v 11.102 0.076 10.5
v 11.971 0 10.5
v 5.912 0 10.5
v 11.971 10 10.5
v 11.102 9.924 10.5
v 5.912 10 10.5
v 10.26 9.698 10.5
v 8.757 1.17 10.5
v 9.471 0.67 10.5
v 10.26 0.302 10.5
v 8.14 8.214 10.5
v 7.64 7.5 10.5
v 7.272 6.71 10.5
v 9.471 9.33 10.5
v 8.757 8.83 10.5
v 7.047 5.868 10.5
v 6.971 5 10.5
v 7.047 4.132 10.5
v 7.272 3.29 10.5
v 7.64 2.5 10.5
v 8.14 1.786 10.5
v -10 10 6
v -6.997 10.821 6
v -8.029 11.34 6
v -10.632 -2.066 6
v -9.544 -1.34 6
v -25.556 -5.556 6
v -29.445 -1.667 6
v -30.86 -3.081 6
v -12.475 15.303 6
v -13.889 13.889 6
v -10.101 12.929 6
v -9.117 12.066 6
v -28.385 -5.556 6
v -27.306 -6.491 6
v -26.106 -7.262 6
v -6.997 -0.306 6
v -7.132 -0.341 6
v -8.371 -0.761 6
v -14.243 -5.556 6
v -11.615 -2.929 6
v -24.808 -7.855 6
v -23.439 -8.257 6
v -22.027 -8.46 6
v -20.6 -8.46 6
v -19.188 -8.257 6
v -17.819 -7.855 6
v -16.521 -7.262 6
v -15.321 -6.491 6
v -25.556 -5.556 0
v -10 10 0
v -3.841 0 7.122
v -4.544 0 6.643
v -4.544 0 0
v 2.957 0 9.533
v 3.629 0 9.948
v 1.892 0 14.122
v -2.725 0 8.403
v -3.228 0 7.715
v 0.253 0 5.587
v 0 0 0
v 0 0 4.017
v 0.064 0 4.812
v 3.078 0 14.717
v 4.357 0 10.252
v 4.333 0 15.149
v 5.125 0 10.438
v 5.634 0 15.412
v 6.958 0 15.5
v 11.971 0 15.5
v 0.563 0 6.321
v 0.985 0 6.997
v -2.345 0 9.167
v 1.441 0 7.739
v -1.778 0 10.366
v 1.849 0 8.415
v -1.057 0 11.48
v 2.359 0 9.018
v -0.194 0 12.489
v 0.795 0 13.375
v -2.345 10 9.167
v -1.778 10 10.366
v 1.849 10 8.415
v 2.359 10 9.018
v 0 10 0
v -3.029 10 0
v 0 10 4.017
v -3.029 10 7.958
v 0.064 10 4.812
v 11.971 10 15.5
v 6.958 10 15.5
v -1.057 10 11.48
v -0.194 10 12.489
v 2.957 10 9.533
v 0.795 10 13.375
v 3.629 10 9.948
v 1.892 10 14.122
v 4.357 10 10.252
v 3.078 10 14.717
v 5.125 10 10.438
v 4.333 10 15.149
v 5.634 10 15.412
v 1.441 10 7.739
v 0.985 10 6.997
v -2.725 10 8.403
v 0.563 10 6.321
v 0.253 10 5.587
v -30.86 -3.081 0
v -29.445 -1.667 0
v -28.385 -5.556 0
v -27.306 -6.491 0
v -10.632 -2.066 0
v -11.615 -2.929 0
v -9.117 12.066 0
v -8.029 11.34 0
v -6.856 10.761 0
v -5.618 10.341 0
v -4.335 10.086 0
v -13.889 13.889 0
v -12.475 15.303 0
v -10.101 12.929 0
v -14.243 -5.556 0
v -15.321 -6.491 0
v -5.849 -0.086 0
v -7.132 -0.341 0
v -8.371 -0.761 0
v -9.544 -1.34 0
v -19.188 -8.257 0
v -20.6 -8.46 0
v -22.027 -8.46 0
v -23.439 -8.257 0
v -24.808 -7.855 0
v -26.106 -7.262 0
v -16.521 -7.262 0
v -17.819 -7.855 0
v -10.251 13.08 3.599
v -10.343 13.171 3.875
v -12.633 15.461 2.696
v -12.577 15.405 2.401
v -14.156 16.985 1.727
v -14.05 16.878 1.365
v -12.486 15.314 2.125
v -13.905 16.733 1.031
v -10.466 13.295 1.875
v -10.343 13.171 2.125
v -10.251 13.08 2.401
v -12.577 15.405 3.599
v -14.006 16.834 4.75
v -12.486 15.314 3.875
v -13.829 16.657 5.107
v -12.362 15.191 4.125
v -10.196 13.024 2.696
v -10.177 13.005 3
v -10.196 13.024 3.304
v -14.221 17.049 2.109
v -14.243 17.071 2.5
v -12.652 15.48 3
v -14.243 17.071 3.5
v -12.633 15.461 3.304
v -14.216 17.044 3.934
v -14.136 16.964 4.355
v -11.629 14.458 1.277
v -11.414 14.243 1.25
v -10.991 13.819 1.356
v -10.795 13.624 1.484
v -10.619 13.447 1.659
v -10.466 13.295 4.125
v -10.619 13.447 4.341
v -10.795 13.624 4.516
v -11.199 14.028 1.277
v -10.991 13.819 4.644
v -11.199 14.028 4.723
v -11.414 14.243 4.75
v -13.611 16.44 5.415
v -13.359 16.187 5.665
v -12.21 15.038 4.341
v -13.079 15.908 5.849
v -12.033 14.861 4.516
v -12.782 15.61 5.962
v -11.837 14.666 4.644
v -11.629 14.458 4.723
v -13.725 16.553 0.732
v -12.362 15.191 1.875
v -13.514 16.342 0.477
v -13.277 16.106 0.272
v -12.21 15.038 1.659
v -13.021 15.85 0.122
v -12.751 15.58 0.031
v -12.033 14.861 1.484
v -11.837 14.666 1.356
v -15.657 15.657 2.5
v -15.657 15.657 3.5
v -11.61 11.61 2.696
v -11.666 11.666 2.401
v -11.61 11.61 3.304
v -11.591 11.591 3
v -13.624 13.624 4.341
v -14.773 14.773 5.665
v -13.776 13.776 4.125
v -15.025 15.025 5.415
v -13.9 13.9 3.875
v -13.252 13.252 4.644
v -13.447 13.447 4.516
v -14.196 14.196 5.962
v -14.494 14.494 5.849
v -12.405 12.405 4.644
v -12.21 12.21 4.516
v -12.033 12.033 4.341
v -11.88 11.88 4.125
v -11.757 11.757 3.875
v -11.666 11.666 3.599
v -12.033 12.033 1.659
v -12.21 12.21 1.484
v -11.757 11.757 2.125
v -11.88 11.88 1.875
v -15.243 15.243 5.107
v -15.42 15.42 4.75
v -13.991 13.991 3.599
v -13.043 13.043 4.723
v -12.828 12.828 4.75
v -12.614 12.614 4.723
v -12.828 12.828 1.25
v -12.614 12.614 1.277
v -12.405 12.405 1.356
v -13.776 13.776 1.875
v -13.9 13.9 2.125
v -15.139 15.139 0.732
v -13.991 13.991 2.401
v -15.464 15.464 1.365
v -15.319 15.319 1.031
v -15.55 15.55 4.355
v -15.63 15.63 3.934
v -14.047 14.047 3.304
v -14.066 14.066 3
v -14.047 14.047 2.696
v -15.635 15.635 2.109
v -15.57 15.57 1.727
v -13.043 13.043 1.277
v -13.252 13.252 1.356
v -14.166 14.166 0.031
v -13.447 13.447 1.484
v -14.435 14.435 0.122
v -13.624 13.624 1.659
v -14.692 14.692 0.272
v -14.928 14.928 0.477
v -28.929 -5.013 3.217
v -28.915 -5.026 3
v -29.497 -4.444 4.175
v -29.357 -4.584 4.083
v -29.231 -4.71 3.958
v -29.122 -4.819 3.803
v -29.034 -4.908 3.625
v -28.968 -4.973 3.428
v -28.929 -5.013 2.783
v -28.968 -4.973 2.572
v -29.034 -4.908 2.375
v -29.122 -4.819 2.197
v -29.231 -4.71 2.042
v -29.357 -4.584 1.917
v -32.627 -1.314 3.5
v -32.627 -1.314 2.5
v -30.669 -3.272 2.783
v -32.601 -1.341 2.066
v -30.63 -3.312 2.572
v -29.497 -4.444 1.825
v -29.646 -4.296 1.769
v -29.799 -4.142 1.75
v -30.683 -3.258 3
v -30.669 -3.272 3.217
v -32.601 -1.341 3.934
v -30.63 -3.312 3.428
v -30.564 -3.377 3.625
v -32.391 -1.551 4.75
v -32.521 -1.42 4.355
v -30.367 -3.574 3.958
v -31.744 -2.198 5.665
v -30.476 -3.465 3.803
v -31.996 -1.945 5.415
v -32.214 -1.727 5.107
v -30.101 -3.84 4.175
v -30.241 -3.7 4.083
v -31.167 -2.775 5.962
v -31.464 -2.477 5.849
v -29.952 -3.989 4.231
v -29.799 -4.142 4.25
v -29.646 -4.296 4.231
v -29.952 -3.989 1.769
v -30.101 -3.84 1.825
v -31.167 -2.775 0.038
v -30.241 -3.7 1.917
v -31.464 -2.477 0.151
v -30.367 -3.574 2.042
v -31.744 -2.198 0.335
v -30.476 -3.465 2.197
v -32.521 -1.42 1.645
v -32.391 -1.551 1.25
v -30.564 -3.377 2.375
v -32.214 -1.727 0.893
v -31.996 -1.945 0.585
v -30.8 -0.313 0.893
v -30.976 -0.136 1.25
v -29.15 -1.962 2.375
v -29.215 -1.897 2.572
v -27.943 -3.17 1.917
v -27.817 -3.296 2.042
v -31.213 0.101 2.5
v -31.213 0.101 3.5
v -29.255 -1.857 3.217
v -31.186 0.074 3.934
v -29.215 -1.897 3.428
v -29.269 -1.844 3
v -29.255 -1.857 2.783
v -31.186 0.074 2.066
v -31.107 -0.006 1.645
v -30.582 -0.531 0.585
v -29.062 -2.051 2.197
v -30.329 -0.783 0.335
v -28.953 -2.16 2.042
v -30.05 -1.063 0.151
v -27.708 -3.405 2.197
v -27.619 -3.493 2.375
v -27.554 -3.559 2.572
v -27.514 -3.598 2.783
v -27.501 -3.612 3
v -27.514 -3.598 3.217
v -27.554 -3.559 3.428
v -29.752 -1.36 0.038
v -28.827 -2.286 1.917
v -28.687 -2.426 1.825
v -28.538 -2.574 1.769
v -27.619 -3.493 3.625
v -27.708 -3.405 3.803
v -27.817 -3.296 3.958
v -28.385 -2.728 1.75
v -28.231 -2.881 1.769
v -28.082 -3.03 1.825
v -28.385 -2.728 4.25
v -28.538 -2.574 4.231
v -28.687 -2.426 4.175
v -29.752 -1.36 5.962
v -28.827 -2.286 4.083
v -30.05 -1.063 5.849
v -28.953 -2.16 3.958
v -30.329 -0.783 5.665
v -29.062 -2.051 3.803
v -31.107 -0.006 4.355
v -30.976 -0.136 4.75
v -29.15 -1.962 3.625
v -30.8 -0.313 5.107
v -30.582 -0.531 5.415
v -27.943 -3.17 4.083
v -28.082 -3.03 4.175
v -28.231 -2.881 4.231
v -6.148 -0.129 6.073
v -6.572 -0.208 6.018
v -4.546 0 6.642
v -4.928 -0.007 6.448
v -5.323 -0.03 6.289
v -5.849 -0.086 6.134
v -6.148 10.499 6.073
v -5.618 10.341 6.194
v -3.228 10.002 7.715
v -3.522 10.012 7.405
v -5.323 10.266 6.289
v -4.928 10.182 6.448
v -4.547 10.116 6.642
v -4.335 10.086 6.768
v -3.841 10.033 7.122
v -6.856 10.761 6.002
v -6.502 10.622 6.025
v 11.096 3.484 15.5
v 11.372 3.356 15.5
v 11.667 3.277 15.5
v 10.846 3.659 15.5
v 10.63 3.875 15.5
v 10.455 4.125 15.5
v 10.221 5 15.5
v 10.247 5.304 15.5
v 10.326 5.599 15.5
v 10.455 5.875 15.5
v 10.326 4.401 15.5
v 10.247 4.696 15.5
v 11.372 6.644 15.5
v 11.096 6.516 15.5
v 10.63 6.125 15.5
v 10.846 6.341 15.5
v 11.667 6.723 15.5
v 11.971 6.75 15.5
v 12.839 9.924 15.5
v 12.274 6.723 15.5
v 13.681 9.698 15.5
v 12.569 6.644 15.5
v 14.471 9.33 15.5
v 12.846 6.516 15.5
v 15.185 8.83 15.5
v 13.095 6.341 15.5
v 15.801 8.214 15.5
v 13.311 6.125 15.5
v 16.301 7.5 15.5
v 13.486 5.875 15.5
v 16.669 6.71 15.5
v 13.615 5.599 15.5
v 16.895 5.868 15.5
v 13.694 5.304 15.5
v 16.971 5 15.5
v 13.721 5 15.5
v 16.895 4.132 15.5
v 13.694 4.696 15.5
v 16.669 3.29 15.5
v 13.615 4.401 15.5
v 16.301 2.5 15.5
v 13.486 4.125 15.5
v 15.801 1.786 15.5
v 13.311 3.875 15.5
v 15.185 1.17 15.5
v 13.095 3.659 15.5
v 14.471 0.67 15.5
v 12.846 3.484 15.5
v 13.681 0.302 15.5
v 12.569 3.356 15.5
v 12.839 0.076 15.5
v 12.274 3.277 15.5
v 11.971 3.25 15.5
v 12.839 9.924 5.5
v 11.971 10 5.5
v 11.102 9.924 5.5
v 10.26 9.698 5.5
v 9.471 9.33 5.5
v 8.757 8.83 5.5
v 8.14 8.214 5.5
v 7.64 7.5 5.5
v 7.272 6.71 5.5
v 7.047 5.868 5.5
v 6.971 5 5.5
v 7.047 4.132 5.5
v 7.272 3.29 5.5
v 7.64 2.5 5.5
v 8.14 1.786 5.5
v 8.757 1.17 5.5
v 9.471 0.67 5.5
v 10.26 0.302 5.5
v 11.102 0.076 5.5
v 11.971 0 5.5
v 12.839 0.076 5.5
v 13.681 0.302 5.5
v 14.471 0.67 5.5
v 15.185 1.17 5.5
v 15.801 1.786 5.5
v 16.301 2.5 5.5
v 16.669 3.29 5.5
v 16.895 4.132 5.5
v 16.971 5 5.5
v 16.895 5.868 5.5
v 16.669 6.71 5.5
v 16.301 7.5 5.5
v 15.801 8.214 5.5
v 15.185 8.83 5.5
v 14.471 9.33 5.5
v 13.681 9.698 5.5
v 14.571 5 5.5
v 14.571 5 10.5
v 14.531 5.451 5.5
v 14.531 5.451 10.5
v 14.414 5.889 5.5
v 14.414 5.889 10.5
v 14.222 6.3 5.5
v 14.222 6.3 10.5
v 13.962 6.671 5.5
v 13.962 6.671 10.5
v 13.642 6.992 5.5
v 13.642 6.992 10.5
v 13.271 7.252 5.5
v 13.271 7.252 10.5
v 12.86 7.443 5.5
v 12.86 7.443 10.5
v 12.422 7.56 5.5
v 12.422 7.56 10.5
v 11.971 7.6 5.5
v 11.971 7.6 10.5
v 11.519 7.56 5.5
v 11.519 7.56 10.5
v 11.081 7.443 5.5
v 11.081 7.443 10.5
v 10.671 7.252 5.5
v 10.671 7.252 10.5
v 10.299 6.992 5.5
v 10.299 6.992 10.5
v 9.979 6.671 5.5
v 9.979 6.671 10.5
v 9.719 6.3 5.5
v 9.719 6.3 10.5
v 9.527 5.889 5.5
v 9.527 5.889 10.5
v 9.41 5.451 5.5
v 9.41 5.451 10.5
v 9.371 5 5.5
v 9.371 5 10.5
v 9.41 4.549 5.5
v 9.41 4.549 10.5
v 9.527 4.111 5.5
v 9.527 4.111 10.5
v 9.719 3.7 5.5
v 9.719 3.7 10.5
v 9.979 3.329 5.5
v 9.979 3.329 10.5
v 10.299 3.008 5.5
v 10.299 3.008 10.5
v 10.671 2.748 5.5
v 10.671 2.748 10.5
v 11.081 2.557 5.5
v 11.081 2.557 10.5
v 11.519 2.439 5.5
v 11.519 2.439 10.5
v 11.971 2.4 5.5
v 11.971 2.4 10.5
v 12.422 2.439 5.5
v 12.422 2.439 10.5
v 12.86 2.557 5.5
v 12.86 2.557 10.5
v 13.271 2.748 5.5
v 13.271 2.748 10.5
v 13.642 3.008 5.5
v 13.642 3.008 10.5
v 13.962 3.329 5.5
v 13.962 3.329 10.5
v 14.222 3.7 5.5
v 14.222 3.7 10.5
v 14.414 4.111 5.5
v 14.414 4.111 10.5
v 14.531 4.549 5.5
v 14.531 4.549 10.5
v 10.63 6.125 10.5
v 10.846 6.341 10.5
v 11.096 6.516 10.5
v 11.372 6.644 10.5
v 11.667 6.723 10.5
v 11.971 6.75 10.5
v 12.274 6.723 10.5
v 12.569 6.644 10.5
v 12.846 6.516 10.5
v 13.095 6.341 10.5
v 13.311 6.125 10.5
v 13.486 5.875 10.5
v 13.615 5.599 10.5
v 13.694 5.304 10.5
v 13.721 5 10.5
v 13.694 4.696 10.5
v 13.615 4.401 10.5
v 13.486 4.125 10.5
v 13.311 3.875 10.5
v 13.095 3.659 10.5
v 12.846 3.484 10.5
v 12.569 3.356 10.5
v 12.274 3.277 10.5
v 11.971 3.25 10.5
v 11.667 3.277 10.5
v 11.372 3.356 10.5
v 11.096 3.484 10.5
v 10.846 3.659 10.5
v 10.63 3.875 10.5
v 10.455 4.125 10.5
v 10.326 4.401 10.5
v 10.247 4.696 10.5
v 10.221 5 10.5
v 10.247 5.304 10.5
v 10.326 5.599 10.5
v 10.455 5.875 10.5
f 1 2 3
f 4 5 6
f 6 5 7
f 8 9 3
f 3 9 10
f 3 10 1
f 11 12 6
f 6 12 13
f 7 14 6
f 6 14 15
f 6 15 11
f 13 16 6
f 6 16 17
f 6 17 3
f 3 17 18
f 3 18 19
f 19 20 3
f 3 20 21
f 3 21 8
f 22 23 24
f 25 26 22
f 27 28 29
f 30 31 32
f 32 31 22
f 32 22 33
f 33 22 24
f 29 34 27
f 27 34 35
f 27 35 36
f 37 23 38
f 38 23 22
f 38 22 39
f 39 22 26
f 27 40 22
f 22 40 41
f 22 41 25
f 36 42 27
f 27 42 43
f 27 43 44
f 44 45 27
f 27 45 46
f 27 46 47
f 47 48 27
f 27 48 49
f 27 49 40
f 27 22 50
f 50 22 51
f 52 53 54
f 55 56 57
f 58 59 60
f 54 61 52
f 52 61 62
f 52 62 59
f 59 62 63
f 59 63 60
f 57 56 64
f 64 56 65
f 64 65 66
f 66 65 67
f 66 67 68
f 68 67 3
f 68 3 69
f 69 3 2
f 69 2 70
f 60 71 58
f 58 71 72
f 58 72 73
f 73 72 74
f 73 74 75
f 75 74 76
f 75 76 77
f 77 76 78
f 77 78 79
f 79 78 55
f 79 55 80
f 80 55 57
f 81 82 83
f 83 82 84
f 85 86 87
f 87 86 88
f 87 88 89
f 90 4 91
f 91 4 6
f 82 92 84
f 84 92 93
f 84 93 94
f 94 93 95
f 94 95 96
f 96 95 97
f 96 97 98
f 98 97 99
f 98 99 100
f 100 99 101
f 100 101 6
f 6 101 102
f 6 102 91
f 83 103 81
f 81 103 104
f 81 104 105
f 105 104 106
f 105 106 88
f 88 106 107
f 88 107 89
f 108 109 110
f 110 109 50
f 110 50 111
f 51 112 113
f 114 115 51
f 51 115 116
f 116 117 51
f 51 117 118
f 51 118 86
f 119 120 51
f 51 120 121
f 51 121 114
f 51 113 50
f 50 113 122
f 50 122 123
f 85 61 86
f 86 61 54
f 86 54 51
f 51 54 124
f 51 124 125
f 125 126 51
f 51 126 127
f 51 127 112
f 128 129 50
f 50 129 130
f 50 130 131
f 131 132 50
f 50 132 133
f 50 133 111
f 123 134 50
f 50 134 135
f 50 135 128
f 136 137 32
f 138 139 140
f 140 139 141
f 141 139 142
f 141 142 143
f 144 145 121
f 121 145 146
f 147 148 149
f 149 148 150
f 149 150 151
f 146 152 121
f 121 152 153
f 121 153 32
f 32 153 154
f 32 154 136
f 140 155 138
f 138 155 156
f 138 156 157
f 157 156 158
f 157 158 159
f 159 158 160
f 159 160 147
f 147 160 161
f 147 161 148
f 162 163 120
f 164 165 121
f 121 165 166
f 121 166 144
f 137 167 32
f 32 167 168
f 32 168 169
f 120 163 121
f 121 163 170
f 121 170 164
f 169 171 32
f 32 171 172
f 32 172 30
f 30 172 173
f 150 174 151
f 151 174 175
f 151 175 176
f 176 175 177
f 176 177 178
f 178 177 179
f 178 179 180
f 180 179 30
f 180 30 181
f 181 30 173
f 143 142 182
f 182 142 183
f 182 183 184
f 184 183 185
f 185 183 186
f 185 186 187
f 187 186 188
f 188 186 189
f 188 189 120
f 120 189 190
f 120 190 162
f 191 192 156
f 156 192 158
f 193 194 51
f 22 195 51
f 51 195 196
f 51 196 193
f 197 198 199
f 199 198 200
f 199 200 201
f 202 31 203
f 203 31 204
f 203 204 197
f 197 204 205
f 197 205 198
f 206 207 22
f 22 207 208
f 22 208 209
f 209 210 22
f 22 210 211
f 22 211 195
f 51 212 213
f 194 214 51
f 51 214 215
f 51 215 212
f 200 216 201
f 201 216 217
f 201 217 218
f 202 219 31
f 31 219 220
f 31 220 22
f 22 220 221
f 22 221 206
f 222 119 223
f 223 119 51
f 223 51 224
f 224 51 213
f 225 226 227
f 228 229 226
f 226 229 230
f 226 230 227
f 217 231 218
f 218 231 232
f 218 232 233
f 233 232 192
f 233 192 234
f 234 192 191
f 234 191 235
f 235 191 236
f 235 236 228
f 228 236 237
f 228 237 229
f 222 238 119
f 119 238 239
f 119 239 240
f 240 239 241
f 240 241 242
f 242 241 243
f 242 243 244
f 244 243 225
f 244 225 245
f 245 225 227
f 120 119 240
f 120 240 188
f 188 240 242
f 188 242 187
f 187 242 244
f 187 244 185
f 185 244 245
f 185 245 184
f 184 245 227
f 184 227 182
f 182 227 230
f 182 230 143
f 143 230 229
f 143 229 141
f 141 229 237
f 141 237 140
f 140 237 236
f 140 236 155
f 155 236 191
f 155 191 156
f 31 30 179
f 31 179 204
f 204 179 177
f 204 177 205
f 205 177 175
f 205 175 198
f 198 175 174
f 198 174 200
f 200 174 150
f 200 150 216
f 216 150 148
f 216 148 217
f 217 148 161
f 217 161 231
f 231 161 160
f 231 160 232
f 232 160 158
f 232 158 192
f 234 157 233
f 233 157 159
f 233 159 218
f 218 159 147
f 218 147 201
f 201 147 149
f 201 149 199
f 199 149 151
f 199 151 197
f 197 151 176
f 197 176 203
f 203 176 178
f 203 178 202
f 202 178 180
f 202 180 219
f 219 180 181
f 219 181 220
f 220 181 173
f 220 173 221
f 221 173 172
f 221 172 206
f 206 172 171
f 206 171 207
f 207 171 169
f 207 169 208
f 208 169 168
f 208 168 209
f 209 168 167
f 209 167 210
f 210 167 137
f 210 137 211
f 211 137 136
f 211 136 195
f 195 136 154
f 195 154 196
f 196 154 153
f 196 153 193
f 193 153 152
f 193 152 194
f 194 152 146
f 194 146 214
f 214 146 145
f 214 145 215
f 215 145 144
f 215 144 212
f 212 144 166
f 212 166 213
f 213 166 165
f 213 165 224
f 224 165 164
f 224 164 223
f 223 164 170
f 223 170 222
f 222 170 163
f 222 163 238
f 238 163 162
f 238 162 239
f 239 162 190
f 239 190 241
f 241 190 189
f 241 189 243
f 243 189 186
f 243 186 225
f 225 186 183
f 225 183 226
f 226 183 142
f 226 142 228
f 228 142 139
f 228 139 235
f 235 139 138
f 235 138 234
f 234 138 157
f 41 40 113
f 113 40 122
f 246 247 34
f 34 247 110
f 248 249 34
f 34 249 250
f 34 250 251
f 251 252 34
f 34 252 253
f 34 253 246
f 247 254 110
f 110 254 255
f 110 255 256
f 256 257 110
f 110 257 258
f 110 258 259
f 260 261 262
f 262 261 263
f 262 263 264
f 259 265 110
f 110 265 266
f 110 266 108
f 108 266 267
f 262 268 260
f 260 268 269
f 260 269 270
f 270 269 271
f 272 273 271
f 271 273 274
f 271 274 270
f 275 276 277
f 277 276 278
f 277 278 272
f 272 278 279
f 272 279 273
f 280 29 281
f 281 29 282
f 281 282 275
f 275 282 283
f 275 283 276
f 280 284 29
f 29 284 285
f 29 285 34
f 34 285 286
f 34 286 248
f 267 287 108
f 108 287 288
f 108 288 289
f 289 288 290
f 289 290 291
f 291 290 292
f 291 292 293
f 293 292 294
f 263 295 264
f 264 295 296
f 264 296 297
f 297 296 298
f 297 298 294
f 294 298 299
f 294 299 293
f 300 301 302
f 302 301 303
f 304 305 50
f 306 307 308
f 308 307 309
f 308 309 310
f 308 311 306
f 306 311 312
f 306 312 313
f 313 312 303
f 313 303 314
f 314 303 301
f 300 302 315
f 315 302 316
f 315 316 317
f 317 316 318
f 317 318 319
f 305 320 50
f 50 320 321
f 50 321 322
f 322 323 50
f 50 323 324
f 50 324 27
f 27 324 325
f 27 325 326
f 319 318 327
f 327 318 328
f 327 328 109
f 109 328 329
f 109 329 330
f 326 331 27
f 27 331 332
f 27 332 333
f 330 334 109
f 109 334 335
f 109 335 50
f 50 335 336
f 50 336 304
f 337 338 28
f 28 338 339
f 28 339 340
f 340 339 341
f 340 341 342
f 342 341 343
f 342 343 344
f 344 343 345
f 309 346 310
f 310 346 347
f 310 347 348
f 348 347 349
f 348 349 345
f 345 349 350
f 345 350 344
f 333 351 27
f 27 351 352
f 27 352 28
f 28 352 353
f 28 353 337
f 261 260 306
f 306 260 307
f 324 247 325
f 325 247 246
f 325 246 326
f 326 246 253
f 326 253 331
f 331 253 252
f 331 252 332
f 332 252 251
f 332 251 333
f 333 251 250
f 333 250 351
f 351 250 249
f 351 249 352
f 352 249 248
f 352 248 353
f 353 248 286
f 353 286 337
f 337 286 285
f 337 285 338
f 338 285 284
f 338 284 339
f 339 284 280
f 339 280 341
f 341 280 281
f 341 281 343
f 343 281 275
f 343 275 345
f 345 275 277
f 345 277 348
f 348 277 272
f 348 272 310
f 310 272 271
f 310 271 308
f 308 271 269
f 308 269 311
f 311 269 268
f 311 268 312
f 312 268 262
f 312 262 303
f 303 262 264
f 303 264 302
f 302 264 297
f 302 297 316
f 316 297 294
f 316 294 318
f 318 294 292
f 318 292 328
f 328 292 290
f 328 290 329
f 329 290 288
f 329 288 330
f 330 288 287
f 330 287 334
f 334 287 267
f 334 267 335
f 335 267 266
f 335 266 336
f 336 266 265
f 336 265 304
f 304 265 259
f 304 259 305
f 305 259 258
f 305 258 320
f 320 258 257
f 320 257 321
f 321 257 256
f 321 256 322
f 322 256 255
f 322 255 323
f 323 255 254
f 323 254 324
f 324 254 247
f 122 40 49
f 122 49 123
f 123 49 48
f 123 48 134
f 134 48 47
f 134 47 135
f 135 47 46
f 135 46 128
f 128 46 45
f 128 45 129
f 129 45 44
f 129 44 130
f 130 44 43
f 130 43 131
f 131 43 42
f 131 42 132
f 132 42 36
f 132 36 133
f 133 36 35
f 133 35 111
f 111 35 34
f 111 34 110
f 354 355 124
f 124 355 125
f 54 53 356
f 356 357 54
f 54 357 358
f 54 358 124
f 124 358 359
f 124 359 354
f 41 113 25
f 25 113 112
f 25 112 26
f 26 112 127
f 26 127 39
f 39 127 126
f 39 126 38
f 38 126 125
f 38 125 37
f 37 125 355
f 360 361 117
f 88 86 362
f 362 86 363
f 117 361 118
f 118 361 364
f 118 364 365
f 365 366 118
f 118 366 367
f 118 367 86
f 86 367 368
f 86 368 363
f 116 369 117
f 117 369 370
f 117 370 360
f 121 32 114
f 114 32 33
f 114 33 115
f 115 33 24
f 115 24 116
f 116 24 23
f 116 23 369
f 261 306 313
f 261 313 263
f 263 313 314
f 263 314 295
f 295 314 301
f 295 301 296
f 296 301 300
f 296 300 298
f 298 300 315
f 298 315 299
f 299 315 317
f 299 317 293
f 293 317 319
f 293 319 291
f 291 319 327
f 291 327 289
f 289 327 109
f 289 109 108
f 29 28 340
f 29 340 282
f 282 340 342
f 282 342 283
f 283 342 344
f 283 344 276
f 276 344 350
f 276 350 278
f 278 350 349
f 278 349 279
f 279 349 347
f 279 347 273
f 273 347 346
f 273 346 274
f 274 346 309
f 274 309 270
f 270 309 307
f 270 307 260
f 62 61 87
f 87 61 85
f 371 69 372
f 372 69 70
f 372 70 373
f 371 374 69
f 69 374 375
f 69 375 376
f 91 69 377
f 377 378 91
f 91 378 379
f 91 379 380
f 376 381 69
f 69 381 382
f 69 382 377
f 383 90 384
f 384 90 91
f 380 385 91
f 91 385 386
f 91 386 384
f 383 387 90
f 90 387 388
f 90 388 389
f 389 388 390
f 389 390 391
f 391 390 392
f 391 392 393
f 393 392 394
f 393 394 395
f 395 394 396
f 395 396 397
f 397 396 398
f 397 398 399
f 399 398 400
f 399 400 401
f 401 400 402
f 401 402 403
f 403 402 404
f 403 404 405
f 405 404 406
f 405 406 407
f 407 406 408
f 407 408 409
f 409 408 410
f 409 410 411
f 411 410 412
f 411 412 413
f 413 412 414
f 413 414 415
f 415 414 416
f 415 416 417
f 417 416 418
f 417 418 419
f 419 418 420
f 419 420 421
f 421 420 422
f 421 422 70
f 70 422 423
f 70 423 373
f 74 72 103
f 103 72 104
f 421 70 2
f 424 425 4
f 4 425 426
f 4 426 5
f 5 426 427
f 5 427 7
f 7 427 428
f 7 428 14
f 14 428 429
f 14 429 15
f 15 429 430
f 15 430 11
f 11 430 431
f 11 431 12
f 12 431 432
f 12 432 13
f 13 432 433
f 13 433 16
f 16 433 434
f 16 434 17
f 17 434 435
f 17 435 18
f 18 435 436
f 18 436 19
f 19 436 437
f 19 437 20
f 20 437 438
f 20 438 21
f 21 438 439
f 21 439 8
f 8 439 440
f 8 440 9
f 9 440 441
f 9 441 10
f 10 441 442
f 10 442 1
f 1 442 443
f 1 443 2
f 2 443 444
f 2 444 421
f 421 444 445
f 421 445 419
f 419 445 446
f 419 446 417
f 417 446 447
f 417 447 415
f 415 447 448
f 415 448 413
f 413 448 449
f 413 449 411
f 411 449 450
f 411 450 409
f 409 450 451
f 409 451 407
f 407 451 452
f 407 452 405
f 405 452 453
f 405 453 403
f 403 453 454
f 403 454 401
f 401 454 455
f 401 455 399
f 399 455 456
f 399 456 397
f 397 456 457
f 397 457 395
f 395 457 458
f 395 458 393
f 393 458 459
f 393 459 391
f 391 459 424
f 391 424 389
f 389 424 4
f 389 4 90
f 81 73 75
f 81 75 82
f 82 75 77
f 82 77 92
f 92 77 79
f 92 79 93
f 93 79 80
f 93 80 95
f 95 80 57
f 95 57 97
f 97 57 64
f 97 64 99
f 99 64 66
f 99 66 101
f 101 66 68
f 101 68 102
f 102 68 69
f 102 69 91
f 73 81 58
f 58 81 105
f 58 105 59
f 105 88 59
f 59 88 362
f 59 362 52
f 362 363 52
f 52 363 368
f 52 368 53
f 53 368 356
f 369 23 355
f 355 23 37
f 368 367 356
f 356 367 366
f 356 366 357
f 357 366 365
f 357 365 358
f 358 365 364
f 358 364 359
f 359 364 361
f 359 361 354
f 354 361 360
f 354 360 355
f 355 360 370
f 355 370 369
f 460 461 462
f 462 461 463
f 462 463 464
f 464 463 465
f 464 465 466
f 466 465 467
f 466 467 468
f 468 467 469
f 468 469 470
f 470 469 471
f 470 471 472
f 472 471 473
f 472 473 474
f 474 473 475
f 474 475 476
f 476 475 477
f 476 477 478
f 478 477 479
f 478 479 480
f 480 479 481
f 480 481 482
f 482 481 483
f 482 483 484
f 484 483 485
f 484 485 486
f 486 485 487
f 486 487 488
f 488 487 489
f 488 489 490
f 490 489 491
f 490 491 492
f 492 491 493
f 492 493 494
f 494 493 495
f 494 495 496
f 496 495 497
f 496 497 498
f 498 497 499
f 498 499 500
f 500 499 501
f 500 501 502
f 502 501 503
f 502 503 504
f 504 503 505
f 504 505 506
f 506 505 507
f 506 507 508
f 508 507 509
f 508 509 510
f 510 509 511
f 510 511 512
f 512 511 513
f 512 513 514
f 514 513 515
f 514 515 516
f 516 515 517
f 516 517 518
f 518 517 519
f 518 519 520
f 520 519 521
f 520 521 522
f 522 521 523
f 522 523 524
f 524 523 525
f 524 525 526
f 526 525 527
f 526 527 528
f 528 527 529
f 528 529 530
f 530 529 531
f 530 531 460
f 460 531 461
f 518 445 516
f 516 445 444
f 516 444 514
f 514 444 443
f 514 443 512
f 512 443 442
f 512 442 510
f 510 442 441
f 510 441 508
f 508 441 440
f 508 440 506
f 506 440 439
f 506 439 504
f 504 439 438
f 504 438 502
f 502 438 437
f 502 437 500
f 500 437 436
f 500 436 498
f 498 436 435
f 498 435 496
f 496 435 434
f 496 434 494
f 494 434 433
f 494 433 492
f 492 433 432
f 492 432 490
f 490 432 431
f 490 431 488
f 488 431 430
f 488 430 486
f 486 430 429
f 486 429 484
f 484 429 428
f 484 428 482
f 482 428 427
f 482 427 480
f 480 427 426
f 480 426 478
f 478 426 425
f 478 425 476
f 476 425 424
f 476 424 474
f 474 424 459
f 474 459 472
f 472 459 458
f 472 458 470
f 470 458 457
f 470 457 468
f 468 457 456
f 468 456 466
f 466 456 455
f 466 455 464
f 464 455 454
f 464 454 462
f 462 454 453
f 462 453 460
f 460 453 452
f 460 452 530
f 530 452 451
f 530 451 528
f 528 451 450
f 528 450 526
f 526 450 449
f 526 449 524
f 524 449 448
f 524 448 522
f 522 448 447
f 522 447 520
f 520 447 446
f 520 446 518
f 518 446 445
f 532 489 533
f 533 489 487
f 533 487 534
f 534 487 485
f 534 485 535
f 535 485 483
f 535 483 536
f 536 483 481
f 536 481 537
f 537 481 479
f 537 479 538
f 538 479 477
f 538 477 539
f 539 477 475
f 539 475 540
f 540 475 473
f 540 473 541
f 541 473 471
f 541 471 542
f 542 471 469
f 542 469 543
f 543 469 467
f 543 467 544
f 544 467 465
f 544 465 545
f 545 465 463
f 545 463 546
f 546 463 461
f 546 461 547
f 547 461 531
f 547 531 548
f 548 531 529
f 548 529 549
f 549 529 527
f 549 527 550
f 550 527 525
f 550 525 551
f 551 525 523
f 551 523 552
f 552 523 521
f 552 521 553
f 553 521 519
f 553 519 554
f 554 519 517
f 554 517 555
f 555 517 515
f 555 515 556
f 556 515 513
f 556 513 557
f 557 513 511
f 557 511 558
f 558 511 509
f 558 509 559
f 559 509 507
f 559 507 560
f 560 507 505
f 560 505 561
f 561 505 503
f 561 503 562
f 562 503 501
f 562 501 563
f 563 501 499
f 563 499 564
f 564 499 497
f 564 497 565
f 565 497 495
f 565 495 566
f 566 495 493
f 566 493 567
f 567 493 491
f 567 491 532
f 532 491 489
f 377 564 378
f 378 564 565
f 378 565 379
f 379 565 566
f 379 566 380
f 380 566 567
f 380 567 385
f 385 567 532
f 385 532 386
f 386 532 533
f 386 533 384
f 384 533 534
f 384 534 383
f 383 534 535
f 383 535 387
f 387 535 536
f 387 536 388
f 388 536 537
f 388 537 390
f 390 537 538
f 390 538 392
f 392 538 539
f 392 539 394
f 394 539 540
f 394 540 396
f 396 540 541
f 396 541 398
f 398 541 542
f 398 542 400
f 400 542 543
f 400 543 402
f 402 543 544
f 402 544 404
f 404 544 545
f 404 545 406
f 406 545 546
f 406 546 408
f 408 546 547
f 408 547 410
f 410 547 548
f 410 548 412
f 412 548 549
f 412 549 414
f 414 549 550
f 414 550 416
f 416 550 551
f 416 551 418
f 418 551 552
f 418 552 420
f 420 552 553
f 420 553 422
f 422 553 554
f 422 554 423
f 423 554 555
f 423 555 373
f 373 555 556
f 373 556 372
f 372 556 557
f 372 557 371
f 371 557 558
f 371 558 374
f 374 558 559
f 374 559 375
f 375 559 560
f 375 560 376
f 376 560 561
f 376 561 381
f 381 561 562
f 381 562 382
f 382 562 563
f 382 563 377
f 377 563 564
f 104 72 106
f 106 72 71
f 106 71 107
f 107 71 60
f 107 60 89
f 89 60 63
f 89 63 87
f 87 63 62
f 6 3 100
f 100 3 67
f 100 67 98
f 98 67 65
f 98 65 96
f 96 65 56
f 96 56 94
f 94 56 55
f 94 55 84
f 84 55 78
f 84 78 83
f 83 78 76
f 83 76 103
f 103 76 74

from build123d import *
from build123d.topology import SkipClean

# Parameters (mm, degrees)
ESTRUSIONE_ESTRUSIONE1_DEPTH  = 6
ESTRUSIONE_ESTRUSIONE3_START  = -11
SCHIZZO3_R                    = 5
SCHIZZO3_R_2                  = 2.65
ESTRUSIONE_ESTRUSIONE3_DEPTH  = 11
SCHIZZO5_R                    = 0.925
ESTRUSIONE_ESTRUSIONE4_DEPTH  = 20
SCHIZZO12_W                   = 8
SCHIZZO12_H                   = 6
ESTRUSIONE_ESTRUSIONE6_DEPTH  = 2
SCHIZZO13_W                   = 6
SCHIZZO13_H                   = 2
ESTRUSIONE_ESTRUSIONE7_DEPTH  = 3
RACCORDO2_R                   = 2.5
SCHIZZO14_R                   = 1.75
SCHIZZO14_R_2                 = 0.925
TAGLIO_ESTRUSIONE7_DEPTH      = 25
SCHIZZO15_W                   = 6
SCHIZZO15_H                   = 8
ESTRUSIONE_ESTRUSIONE8_DEPTH  = 24
SCHIZZO16_W                   = 6
SCHIZZO16_H                   = 2
ESTRUSIONE_ESTRUSIONE9_DEPTH  = 7.999994
SCHIZZO17_R                   = 1.25
TAGLIO_ESTRUSIONE8_DEPTH      = 25
RACCORDO3_R                   = 10
RACCORDO4_R                   = 10
RACCORDO5_R                   = 10
RACCORDO6_R                   = 2.5
SCHIZZO18_R                   = 1.75
TAGLIO_ESTRUSIONE9_DEPTH      = 39.431359843
SCHIZZO20_W                   = 20
SCHIZZO20_H                   = 19.30891557
TAGLIO_ESTRUSIONE10_DEPTH     = 39.431359843
SCHIZZO21_W                   = 5
SCHIZZO21_H                   = 10
ESTRUSIONE_ESTRUSIONE10_DEPTH = 9.5
SCHIZZO22_W                   = 5
SCHIZZO22_H                   = 10
ESTRUSIONE_ESTRUSIONE11_DEPTH = 15
RACCORDO7_R                   = 5
RACCORDO8_R                   = 10
RACCORDO9_R                   = 5
ESTRUSIONE_ESTRUSIONE13_START = 5
SCHIZZO24_R                   = 5
SCHIZZO24_R_2                 = 2.6
ESTRUSIONE_ESTRUSIONE13_DEPTH = 5
SCHIZZO26_R                   = 1.75
TAGLIO_ESTRUSIONE12_DEPTH     = 39.29124471
RACCORDO10_R                  = 5


with BuildPart() as part:
    # Schizzo1 → Estrusione-Estrusione1 (new body)
    with BuildSketch(Plane.XY):
        with BuildLine():
            Line((0, 0), (-20, 0))
            Line((-20, 0), (-10, 10))
            Line((-10, 10), (10, 10))
            ThreePointArc((10, 10), (15, 5), (10, 0))
            Line((10, 0), (0, 0))
        make_face()
    extrude(amount=ESTRUSIONE_ESTRUSIONE1_DEPTH)

    # Schizzo3 → Estrusione-Estrusione3 (add)
    with SkipClean():  # the faces are left unmerged after this step: merging them gives an invalid solid
        with BuildSketch(Plane.XY.offset(6).offset(ESTRUSIONE_ESTRUSIONE3_START)):
            with Locations(Location((10, 5, 0), (0, 0, 270))):
                Circle(SCHIZZO3_R)
            with Locations((10, 5)):
                Circle(SCHIZZO3_R_2, mode=Mode.SUBTRACT)
        extrude(amount=ESTRUSIONE_ESTRUSIONE3_DEPTH)



with BuildPart() as body_2:
    # Schizzo5 → Estrusione-Estrusione4 (new body)
    with BuildSketch(Plane(origin=(0, 0, 0), x_dir=(-0.7071067811865476, 0.7071067811865476, 0), z_dir=(0.7071067811865476, 0.7071067811865476, 0))):
        with Locations((18.142135624, 3)):
            Circle(SCHIZZO5_R)
    extrude(amount=-ESTRUSIONE_ESTRUSIONE4_DEPTH)

    # Schizzo12 → Estrusione-Estrusione6 (add)
    with BuildSketch(Plane(origin=(0, 0, 0), x_dir=(-0.7071067811865476, 0.7071067811865476, 0), z_dir=(0.7071067811865476, 0.7071067811865476, 0))):
        with Locations((18.142135624, 3)):
            Rectangle(SCHIZZO12_W, SCHIZZO12_H)
    extrude(amount=ESTRUSIONE_ESTRUSIONE6_DEPTH)


with BuildPart() as part_1:
    with SkipClean():  # the faces are left unmerged after this step: merging them gives an invalid solid
        add(part.part)

        add(body_2.part)  # Estrusione-Estrusione7 merges body 2
        # Schizzo13 → Estrusione-Estrusione7 (add)
        with BuildSketch(Plane(origin=(-10, 10, 0), x_dir=(0, 0, -1), z_dir=(0.7071067811865477, -0.7071067811865475, 0))):
            with Locations((-3, 1)):
                Rectangle(SCHIZZO13_W, SCHIZZO13_H)
        extrude(amount=ESTRUSIONE_ESTRUSIONE7_DEPTH)

    # Raccordo2
    raccordo2_edges = [part_1.edges().sort_by_distance(p)[0] for p in [
        (-14.949747468, 16.363961031, 0),
        (-14.949747468, 16.363961031, 6),
    ]]
    fillet(raccordo2_edges, radius=RACCORDO2_R)

    # Schizzo14 → Taglio-Estrusione7 (cut)
    # profile 1 of 2: a face of its own
    with SkipClean():  # the faces are left unmerged after this step: merging them gives an invalid solid
        with BuildSketch(Plane(origin=(1.414213562, 1.414213562, 0), x_dir=(0, 0, -1), z_dir=(0.7071067811865476, 0.7071067811865476, 0))):
            with Locations(Location((-3, 18.142135624, 0), (0, 0, 90))):
                Circle(SCHIZZO14_R)
            with Locations((-3, 18.142135624)):
                Circle(SCHIZZO14_R_2, mode=Mode.SUBTRACT)
        # profile 2 of 2: a face of its own
        with BuildSketch(Plane(origin=(1.414213562, 1.414213562, 0), x_dir=(0, 0, -1), z_dir=(0.7071067811865476, 0.7071067811865476, 0))):
            with Locations((-3, 18.142135624)):
                Circle(SCHIZZO14_R_2)
        extrude(amount=-TAGLIO_ESTRUSIONE7_DEPTH, mode=Mode.SUBTRACT)

    # Schizzo15 → Estrusione-Estrusione8 (add)
    with SkipClean():  # the faces are left unmerged after this step: merging them gives an invalid solid
        with BuildSketch(Plane(origin=(0, 0, 0), x_dir=(0, 0, 1), z_dir=(-0.7071067811865477, -0.7071067811865475, 0))):
            with Locations((3, 10.142135624)):
                Rectangle(SCHIZZO15_W, SCHIZZO15_H)
        extrude(amount=ESTRUSIONE_ESTRUSIONE8_DEPTH)

    # Schizzo16 → Estrusione-Estrusione9 (add)
    with SkipClean():  # the faces are left unmerged after this step: merging them gives an invalid solid
        with BuildSketch(Plane(origin=(-10, 10, 0), x_dir=(0, 0, 1), z_dir=(-0.7071067811865477, 0.7071067811865475, 0))):
            with Locations((3, -23)):
                Rectangle(SCHIZZO16_W, SCHIZZO16_H)
        extrude(amount=ESTRUSIONE_ESTRUSIONE9_DEPTH)

    # Schizzo17 → Taglio-Estrusione8 (cut)
    with SkipClean():  # the faces are left unmerged after this step: merging them gives an invalid solid
        with BuildSketch(Plane(origin=(-16.970562748, -16.970562748, 0), x_dir=(0, 0, 1), z_dir=(-0.7071067811865477, -0.7071067811865474, 0))):
            with Locations(Location((3, 18.142135624, 0), (0, 0, 270))):
                Circle(SCHIZZO17_R)
        extrude(amount=-TAGLIO_ESTRUSIONE8_DEPTH, mode=Mode.SUBTRACT)

    # Raccordo3
    # the kernel refuses this fillet: 10 mm, written as the material it takes off along each edge
    with BuildSketch(Plane(origin=(-21.313708499, -12.627416998, -25), x_dir=(0.7071067811865475, 0.7071067811865475, 0), z_dir=(0, 0, 1))) as raccordo3_piece_1:
        with BuildLine():
            CenterArc((RACCORDO3_R, RACCORDO3_R), RACCORDO3_R, 180, 90)
            Line((0, RACCORDO3_R), (0, 0))
            Line((0, 0), (RACCORDO3_R, 0))
        make_face()
    extrude(amount=56, mode=Mode.SUBTRACT)

    # Raccordo4
    raccordo4_edges = [part_1.edges().sort_by_distance(p)[0] for p in [
        (-8.686291501, 0, 3),
    ]]
    fillet(raccordo4_edges, radius=RACCORDO4_R)

    # Raccordo5
    raccordo5_edges = [part_1.edges().sort_by_distance(p)[0] for p in [
        (-7.171572875, 10, 3),
    ]]
    fillet(raccordo5_edges, radius=RACCORDO5_R)

    # Raccordo6
    raccordo6_edges = [part_1.edges().sort_by_distance(p)[0] for p in [
        (-31.920305974, -0.60660596, 6),
        (-31.920305974, -0.60660596, 0),
    ]]
    fillet(raccordo6_edges, radius=RACCORDO6_R)

    # Schizzo18 → Taglio-Estrusione9 (cut, through all)
    with BuildSketch(Plane.XY.offset(6)):
        with Locations((10, 5)):
            Circle(SCHIZZO18_R)
    extrude(amount=-TAGLIO_ESTRUSIONE9_DEPTH, mode=Mode.SUBTRACT)

    # Schizzo20 → Taglio-Estrusione10 (cut, through all)
    with BuildSketch(Plane(origin=(0, 0, -5), x_dir=(-1, 0, 0), z_dir=(0, 0, -1))):
        with Locations((-10, 5)):
            Rectangle(SCHIZZO20_W, SCHIZZO20_H)
    extrude(amount=-TAGLIO_ESTRUSIONE10_DEPTH, mode=Mode.SUBTRACT)

    # Schizzo21 → Estrusione-Estrusione10 (add)
    with BuildSketch(Plane.XY.offset(6)):
        with Locations((-0.529437252, 5)):
            Rectangle(SCHIZZO21_W, SCHIZZO21_H)
    extrude(amount=ESTRUSIONE_ESTRUSIONE10_DEPTH)

    # Schizzo22 → Estrusione-Estrusione11 (add)
    with BuildSketch(Plane(origin=(1.970562748, 0, 0), x_dir=(0, 0, -1), z_dir=(1, 0, 0))):
        with Locations((-13, 5)):
            Rectangle(SCHIZZO22_W, SCHIZZO22_H)
    extrude(amount=ESTRUSIONE_ESTRUSIONE11_DEPTH)

    # Raccordo7
    # the kernel refuses this fillet: 5 mm, written as the material it takes off along each edge
    with BuildSketch(Plane(origin=(1.970562748, 19.944379675, 6), x_dir=(-1, 0, 0), z_dir=(0, -1, 0))) as raccordo7_piece_1:
        with BuildLine():
            CenterArc((5, -3.97775187), RACCORDO7_R, 127.292729202, 52.707270798)
            Line((0, -3.97775187), (-0.1, -3.97775187))
            Line((-0.1, -3.97775187), (-0.1, 0))
            Line((-0.1, 0), (0, 0.1))
            ThreePointArc((0, 0.1), (0.985281374, 0.1), (1.909974003, 0.079555037))
            Line((1.909974003, 0.079555037), (1.970562748, 0))
        make_face()
    extrude(amount=29.88875935, mode=Mode.SUBTRACT)
    with BuildSketch(Plane(origin=(16.970562748, 0, -2), x_dir=(0, 1, 0), z_dir=(0, 0, 1))) as raccordo7_piece_2:
        with BuildLine():
            CenterArc((RACCORDO7_R, RACCORDO7_R), RACCORDO7_R, 180, 90)
            Line((0, RACCORDO7_R), (-RACCORDO7_R * 0.02, RACCORDO7_R))
            Line((-RACCORDO7_R * 0.02, RACCORDO7_R), (-RACCORDO7_R * 0.02, -RACCORDO7_R * 0.02))
            Line((-RACCORDO7_R * 0.02, -RACCORDO7_R * 0.02), (RACCORDO7_R, -RACCORDO7_R * 0.02))
            Line((RACCORDO7_R, -RACCORDO7_R * 0.02), (RACCORDO7_R, 0))
        make_face()
    extrude(amount=30, mode=Mode.SUBTRACT)
    with BuildSketch(Plane(origin=(16.970562748, 10, 28), x_dir=(-1, 0, 0), z_dir=(0, 0, -1))) as raccordo7_piece_3:
        with BuildLine():
            CenterArc((RACCORDO7_R, -RACCORDO7_R), RACCORDO7_R, 90, 90)
            Line((0, -RACCORDO7_R), (-RACCORDO7_R * 0.02, -RACCORDO7_R))
            Line((-RACCORDO7_R * 0.02, -RACCORDO7_R), (-RACCORDO7_R * 0.02, RACCORDO7_R * 0.02))
            Line((-RACCORDO7_R * 0.02, RACCORDO7_R * 0.02), (RACCORDO7_R, RACCORDO7_R * 0.02))
            Line((RACCORDO7_R, RACCORDO7_R * 0.02), (RACCORDO7_R, 0))
        make_face()
    extrude(amount=30, mode=Mode.SUBTRACT)

    # Raccordo8
    # the kernel refuses this fillet: 10 mm, written as the material it takes off along each edge
    with BuildSketch(Plane(origin=(-3.029437252, -24.968730444, 15.5), x_dir=(1, 0, 0), z_dir=(0, 1, 0))) as raccordo8_piece_1:
        with BuildLine():
            CenterArc((9.987492178, 10), RACCORDO8_R, 182.865983983, 87.134016017)
            Line((0, 9.5), (-0.199749844, 9.49))
            ThreePointArc((-0.199749844, 9.49), (-0.2, 4.75), (-0.2, 0))
            Line((-0.2, 0), (0, -0.2))
            Line((0, -0.2), (9.987492178, -0.2))
            Line((9.987492178, -0.2), (9.987492178, 0))
        make_face()
    extrude(amount=59.937460889, mode=Mode.SUBTRACT)

    # Raccordo9
    raccordo9_edges = [part_1.edges().sort_by_distance(p)[0] for p in [
        (-3.029437252, 5, 6),
    ]]
    fillet(raccordo9_edges, radius=RACCORDO9_R)

    # Schizzo24 → Estrusione-Estrusione13 (add)
    with BuildSketch(Plane(origin=(0, 0, 10.5), x_dir=(-1, 0, 0), z_dir=(0, 0, -1)).offset(ESTRUSIONE_ESTRUSIONE13_START)):
        with Locations(Location((-11.970562748, 5, 0), (0, 0, 180))):
            Circle(SCHIZZO24_R)
        with Locations((-11.970562748, 5)):
            Circle(SCHIZZO24_R_2, mode=Mode.SUBTRACT)
    extrude(amount=-ESTRUSIONE_ESTRUSIONE13_DEPTH)

    # Schizzo26 → Taglio-Estrusione12 (cut, through all)
    with BuildSketch(Plane(origin=(0, 0, 10.5), x_dir=(-1, 0, 0), z_dir=(0, 0, -1))):
        with Locations((-11.970562748, 5)):
            Circle(SCHIZZO26_R)
    extrude(amount=-TAGLIO_ESTRUSIONE12_DEPTH, mode=Mode.SUBTRACT)

    # Raccordo10
    raccordo10_edges = [part_1.edges().sort_by_distance(p)[0] for p in [
        (0, 5, 6),
        (1.970562748, 5, 10.5),
    ]]
    fillet(raccordo10_edges, radius=RACCORDO10_R)


solid = part_1.part
